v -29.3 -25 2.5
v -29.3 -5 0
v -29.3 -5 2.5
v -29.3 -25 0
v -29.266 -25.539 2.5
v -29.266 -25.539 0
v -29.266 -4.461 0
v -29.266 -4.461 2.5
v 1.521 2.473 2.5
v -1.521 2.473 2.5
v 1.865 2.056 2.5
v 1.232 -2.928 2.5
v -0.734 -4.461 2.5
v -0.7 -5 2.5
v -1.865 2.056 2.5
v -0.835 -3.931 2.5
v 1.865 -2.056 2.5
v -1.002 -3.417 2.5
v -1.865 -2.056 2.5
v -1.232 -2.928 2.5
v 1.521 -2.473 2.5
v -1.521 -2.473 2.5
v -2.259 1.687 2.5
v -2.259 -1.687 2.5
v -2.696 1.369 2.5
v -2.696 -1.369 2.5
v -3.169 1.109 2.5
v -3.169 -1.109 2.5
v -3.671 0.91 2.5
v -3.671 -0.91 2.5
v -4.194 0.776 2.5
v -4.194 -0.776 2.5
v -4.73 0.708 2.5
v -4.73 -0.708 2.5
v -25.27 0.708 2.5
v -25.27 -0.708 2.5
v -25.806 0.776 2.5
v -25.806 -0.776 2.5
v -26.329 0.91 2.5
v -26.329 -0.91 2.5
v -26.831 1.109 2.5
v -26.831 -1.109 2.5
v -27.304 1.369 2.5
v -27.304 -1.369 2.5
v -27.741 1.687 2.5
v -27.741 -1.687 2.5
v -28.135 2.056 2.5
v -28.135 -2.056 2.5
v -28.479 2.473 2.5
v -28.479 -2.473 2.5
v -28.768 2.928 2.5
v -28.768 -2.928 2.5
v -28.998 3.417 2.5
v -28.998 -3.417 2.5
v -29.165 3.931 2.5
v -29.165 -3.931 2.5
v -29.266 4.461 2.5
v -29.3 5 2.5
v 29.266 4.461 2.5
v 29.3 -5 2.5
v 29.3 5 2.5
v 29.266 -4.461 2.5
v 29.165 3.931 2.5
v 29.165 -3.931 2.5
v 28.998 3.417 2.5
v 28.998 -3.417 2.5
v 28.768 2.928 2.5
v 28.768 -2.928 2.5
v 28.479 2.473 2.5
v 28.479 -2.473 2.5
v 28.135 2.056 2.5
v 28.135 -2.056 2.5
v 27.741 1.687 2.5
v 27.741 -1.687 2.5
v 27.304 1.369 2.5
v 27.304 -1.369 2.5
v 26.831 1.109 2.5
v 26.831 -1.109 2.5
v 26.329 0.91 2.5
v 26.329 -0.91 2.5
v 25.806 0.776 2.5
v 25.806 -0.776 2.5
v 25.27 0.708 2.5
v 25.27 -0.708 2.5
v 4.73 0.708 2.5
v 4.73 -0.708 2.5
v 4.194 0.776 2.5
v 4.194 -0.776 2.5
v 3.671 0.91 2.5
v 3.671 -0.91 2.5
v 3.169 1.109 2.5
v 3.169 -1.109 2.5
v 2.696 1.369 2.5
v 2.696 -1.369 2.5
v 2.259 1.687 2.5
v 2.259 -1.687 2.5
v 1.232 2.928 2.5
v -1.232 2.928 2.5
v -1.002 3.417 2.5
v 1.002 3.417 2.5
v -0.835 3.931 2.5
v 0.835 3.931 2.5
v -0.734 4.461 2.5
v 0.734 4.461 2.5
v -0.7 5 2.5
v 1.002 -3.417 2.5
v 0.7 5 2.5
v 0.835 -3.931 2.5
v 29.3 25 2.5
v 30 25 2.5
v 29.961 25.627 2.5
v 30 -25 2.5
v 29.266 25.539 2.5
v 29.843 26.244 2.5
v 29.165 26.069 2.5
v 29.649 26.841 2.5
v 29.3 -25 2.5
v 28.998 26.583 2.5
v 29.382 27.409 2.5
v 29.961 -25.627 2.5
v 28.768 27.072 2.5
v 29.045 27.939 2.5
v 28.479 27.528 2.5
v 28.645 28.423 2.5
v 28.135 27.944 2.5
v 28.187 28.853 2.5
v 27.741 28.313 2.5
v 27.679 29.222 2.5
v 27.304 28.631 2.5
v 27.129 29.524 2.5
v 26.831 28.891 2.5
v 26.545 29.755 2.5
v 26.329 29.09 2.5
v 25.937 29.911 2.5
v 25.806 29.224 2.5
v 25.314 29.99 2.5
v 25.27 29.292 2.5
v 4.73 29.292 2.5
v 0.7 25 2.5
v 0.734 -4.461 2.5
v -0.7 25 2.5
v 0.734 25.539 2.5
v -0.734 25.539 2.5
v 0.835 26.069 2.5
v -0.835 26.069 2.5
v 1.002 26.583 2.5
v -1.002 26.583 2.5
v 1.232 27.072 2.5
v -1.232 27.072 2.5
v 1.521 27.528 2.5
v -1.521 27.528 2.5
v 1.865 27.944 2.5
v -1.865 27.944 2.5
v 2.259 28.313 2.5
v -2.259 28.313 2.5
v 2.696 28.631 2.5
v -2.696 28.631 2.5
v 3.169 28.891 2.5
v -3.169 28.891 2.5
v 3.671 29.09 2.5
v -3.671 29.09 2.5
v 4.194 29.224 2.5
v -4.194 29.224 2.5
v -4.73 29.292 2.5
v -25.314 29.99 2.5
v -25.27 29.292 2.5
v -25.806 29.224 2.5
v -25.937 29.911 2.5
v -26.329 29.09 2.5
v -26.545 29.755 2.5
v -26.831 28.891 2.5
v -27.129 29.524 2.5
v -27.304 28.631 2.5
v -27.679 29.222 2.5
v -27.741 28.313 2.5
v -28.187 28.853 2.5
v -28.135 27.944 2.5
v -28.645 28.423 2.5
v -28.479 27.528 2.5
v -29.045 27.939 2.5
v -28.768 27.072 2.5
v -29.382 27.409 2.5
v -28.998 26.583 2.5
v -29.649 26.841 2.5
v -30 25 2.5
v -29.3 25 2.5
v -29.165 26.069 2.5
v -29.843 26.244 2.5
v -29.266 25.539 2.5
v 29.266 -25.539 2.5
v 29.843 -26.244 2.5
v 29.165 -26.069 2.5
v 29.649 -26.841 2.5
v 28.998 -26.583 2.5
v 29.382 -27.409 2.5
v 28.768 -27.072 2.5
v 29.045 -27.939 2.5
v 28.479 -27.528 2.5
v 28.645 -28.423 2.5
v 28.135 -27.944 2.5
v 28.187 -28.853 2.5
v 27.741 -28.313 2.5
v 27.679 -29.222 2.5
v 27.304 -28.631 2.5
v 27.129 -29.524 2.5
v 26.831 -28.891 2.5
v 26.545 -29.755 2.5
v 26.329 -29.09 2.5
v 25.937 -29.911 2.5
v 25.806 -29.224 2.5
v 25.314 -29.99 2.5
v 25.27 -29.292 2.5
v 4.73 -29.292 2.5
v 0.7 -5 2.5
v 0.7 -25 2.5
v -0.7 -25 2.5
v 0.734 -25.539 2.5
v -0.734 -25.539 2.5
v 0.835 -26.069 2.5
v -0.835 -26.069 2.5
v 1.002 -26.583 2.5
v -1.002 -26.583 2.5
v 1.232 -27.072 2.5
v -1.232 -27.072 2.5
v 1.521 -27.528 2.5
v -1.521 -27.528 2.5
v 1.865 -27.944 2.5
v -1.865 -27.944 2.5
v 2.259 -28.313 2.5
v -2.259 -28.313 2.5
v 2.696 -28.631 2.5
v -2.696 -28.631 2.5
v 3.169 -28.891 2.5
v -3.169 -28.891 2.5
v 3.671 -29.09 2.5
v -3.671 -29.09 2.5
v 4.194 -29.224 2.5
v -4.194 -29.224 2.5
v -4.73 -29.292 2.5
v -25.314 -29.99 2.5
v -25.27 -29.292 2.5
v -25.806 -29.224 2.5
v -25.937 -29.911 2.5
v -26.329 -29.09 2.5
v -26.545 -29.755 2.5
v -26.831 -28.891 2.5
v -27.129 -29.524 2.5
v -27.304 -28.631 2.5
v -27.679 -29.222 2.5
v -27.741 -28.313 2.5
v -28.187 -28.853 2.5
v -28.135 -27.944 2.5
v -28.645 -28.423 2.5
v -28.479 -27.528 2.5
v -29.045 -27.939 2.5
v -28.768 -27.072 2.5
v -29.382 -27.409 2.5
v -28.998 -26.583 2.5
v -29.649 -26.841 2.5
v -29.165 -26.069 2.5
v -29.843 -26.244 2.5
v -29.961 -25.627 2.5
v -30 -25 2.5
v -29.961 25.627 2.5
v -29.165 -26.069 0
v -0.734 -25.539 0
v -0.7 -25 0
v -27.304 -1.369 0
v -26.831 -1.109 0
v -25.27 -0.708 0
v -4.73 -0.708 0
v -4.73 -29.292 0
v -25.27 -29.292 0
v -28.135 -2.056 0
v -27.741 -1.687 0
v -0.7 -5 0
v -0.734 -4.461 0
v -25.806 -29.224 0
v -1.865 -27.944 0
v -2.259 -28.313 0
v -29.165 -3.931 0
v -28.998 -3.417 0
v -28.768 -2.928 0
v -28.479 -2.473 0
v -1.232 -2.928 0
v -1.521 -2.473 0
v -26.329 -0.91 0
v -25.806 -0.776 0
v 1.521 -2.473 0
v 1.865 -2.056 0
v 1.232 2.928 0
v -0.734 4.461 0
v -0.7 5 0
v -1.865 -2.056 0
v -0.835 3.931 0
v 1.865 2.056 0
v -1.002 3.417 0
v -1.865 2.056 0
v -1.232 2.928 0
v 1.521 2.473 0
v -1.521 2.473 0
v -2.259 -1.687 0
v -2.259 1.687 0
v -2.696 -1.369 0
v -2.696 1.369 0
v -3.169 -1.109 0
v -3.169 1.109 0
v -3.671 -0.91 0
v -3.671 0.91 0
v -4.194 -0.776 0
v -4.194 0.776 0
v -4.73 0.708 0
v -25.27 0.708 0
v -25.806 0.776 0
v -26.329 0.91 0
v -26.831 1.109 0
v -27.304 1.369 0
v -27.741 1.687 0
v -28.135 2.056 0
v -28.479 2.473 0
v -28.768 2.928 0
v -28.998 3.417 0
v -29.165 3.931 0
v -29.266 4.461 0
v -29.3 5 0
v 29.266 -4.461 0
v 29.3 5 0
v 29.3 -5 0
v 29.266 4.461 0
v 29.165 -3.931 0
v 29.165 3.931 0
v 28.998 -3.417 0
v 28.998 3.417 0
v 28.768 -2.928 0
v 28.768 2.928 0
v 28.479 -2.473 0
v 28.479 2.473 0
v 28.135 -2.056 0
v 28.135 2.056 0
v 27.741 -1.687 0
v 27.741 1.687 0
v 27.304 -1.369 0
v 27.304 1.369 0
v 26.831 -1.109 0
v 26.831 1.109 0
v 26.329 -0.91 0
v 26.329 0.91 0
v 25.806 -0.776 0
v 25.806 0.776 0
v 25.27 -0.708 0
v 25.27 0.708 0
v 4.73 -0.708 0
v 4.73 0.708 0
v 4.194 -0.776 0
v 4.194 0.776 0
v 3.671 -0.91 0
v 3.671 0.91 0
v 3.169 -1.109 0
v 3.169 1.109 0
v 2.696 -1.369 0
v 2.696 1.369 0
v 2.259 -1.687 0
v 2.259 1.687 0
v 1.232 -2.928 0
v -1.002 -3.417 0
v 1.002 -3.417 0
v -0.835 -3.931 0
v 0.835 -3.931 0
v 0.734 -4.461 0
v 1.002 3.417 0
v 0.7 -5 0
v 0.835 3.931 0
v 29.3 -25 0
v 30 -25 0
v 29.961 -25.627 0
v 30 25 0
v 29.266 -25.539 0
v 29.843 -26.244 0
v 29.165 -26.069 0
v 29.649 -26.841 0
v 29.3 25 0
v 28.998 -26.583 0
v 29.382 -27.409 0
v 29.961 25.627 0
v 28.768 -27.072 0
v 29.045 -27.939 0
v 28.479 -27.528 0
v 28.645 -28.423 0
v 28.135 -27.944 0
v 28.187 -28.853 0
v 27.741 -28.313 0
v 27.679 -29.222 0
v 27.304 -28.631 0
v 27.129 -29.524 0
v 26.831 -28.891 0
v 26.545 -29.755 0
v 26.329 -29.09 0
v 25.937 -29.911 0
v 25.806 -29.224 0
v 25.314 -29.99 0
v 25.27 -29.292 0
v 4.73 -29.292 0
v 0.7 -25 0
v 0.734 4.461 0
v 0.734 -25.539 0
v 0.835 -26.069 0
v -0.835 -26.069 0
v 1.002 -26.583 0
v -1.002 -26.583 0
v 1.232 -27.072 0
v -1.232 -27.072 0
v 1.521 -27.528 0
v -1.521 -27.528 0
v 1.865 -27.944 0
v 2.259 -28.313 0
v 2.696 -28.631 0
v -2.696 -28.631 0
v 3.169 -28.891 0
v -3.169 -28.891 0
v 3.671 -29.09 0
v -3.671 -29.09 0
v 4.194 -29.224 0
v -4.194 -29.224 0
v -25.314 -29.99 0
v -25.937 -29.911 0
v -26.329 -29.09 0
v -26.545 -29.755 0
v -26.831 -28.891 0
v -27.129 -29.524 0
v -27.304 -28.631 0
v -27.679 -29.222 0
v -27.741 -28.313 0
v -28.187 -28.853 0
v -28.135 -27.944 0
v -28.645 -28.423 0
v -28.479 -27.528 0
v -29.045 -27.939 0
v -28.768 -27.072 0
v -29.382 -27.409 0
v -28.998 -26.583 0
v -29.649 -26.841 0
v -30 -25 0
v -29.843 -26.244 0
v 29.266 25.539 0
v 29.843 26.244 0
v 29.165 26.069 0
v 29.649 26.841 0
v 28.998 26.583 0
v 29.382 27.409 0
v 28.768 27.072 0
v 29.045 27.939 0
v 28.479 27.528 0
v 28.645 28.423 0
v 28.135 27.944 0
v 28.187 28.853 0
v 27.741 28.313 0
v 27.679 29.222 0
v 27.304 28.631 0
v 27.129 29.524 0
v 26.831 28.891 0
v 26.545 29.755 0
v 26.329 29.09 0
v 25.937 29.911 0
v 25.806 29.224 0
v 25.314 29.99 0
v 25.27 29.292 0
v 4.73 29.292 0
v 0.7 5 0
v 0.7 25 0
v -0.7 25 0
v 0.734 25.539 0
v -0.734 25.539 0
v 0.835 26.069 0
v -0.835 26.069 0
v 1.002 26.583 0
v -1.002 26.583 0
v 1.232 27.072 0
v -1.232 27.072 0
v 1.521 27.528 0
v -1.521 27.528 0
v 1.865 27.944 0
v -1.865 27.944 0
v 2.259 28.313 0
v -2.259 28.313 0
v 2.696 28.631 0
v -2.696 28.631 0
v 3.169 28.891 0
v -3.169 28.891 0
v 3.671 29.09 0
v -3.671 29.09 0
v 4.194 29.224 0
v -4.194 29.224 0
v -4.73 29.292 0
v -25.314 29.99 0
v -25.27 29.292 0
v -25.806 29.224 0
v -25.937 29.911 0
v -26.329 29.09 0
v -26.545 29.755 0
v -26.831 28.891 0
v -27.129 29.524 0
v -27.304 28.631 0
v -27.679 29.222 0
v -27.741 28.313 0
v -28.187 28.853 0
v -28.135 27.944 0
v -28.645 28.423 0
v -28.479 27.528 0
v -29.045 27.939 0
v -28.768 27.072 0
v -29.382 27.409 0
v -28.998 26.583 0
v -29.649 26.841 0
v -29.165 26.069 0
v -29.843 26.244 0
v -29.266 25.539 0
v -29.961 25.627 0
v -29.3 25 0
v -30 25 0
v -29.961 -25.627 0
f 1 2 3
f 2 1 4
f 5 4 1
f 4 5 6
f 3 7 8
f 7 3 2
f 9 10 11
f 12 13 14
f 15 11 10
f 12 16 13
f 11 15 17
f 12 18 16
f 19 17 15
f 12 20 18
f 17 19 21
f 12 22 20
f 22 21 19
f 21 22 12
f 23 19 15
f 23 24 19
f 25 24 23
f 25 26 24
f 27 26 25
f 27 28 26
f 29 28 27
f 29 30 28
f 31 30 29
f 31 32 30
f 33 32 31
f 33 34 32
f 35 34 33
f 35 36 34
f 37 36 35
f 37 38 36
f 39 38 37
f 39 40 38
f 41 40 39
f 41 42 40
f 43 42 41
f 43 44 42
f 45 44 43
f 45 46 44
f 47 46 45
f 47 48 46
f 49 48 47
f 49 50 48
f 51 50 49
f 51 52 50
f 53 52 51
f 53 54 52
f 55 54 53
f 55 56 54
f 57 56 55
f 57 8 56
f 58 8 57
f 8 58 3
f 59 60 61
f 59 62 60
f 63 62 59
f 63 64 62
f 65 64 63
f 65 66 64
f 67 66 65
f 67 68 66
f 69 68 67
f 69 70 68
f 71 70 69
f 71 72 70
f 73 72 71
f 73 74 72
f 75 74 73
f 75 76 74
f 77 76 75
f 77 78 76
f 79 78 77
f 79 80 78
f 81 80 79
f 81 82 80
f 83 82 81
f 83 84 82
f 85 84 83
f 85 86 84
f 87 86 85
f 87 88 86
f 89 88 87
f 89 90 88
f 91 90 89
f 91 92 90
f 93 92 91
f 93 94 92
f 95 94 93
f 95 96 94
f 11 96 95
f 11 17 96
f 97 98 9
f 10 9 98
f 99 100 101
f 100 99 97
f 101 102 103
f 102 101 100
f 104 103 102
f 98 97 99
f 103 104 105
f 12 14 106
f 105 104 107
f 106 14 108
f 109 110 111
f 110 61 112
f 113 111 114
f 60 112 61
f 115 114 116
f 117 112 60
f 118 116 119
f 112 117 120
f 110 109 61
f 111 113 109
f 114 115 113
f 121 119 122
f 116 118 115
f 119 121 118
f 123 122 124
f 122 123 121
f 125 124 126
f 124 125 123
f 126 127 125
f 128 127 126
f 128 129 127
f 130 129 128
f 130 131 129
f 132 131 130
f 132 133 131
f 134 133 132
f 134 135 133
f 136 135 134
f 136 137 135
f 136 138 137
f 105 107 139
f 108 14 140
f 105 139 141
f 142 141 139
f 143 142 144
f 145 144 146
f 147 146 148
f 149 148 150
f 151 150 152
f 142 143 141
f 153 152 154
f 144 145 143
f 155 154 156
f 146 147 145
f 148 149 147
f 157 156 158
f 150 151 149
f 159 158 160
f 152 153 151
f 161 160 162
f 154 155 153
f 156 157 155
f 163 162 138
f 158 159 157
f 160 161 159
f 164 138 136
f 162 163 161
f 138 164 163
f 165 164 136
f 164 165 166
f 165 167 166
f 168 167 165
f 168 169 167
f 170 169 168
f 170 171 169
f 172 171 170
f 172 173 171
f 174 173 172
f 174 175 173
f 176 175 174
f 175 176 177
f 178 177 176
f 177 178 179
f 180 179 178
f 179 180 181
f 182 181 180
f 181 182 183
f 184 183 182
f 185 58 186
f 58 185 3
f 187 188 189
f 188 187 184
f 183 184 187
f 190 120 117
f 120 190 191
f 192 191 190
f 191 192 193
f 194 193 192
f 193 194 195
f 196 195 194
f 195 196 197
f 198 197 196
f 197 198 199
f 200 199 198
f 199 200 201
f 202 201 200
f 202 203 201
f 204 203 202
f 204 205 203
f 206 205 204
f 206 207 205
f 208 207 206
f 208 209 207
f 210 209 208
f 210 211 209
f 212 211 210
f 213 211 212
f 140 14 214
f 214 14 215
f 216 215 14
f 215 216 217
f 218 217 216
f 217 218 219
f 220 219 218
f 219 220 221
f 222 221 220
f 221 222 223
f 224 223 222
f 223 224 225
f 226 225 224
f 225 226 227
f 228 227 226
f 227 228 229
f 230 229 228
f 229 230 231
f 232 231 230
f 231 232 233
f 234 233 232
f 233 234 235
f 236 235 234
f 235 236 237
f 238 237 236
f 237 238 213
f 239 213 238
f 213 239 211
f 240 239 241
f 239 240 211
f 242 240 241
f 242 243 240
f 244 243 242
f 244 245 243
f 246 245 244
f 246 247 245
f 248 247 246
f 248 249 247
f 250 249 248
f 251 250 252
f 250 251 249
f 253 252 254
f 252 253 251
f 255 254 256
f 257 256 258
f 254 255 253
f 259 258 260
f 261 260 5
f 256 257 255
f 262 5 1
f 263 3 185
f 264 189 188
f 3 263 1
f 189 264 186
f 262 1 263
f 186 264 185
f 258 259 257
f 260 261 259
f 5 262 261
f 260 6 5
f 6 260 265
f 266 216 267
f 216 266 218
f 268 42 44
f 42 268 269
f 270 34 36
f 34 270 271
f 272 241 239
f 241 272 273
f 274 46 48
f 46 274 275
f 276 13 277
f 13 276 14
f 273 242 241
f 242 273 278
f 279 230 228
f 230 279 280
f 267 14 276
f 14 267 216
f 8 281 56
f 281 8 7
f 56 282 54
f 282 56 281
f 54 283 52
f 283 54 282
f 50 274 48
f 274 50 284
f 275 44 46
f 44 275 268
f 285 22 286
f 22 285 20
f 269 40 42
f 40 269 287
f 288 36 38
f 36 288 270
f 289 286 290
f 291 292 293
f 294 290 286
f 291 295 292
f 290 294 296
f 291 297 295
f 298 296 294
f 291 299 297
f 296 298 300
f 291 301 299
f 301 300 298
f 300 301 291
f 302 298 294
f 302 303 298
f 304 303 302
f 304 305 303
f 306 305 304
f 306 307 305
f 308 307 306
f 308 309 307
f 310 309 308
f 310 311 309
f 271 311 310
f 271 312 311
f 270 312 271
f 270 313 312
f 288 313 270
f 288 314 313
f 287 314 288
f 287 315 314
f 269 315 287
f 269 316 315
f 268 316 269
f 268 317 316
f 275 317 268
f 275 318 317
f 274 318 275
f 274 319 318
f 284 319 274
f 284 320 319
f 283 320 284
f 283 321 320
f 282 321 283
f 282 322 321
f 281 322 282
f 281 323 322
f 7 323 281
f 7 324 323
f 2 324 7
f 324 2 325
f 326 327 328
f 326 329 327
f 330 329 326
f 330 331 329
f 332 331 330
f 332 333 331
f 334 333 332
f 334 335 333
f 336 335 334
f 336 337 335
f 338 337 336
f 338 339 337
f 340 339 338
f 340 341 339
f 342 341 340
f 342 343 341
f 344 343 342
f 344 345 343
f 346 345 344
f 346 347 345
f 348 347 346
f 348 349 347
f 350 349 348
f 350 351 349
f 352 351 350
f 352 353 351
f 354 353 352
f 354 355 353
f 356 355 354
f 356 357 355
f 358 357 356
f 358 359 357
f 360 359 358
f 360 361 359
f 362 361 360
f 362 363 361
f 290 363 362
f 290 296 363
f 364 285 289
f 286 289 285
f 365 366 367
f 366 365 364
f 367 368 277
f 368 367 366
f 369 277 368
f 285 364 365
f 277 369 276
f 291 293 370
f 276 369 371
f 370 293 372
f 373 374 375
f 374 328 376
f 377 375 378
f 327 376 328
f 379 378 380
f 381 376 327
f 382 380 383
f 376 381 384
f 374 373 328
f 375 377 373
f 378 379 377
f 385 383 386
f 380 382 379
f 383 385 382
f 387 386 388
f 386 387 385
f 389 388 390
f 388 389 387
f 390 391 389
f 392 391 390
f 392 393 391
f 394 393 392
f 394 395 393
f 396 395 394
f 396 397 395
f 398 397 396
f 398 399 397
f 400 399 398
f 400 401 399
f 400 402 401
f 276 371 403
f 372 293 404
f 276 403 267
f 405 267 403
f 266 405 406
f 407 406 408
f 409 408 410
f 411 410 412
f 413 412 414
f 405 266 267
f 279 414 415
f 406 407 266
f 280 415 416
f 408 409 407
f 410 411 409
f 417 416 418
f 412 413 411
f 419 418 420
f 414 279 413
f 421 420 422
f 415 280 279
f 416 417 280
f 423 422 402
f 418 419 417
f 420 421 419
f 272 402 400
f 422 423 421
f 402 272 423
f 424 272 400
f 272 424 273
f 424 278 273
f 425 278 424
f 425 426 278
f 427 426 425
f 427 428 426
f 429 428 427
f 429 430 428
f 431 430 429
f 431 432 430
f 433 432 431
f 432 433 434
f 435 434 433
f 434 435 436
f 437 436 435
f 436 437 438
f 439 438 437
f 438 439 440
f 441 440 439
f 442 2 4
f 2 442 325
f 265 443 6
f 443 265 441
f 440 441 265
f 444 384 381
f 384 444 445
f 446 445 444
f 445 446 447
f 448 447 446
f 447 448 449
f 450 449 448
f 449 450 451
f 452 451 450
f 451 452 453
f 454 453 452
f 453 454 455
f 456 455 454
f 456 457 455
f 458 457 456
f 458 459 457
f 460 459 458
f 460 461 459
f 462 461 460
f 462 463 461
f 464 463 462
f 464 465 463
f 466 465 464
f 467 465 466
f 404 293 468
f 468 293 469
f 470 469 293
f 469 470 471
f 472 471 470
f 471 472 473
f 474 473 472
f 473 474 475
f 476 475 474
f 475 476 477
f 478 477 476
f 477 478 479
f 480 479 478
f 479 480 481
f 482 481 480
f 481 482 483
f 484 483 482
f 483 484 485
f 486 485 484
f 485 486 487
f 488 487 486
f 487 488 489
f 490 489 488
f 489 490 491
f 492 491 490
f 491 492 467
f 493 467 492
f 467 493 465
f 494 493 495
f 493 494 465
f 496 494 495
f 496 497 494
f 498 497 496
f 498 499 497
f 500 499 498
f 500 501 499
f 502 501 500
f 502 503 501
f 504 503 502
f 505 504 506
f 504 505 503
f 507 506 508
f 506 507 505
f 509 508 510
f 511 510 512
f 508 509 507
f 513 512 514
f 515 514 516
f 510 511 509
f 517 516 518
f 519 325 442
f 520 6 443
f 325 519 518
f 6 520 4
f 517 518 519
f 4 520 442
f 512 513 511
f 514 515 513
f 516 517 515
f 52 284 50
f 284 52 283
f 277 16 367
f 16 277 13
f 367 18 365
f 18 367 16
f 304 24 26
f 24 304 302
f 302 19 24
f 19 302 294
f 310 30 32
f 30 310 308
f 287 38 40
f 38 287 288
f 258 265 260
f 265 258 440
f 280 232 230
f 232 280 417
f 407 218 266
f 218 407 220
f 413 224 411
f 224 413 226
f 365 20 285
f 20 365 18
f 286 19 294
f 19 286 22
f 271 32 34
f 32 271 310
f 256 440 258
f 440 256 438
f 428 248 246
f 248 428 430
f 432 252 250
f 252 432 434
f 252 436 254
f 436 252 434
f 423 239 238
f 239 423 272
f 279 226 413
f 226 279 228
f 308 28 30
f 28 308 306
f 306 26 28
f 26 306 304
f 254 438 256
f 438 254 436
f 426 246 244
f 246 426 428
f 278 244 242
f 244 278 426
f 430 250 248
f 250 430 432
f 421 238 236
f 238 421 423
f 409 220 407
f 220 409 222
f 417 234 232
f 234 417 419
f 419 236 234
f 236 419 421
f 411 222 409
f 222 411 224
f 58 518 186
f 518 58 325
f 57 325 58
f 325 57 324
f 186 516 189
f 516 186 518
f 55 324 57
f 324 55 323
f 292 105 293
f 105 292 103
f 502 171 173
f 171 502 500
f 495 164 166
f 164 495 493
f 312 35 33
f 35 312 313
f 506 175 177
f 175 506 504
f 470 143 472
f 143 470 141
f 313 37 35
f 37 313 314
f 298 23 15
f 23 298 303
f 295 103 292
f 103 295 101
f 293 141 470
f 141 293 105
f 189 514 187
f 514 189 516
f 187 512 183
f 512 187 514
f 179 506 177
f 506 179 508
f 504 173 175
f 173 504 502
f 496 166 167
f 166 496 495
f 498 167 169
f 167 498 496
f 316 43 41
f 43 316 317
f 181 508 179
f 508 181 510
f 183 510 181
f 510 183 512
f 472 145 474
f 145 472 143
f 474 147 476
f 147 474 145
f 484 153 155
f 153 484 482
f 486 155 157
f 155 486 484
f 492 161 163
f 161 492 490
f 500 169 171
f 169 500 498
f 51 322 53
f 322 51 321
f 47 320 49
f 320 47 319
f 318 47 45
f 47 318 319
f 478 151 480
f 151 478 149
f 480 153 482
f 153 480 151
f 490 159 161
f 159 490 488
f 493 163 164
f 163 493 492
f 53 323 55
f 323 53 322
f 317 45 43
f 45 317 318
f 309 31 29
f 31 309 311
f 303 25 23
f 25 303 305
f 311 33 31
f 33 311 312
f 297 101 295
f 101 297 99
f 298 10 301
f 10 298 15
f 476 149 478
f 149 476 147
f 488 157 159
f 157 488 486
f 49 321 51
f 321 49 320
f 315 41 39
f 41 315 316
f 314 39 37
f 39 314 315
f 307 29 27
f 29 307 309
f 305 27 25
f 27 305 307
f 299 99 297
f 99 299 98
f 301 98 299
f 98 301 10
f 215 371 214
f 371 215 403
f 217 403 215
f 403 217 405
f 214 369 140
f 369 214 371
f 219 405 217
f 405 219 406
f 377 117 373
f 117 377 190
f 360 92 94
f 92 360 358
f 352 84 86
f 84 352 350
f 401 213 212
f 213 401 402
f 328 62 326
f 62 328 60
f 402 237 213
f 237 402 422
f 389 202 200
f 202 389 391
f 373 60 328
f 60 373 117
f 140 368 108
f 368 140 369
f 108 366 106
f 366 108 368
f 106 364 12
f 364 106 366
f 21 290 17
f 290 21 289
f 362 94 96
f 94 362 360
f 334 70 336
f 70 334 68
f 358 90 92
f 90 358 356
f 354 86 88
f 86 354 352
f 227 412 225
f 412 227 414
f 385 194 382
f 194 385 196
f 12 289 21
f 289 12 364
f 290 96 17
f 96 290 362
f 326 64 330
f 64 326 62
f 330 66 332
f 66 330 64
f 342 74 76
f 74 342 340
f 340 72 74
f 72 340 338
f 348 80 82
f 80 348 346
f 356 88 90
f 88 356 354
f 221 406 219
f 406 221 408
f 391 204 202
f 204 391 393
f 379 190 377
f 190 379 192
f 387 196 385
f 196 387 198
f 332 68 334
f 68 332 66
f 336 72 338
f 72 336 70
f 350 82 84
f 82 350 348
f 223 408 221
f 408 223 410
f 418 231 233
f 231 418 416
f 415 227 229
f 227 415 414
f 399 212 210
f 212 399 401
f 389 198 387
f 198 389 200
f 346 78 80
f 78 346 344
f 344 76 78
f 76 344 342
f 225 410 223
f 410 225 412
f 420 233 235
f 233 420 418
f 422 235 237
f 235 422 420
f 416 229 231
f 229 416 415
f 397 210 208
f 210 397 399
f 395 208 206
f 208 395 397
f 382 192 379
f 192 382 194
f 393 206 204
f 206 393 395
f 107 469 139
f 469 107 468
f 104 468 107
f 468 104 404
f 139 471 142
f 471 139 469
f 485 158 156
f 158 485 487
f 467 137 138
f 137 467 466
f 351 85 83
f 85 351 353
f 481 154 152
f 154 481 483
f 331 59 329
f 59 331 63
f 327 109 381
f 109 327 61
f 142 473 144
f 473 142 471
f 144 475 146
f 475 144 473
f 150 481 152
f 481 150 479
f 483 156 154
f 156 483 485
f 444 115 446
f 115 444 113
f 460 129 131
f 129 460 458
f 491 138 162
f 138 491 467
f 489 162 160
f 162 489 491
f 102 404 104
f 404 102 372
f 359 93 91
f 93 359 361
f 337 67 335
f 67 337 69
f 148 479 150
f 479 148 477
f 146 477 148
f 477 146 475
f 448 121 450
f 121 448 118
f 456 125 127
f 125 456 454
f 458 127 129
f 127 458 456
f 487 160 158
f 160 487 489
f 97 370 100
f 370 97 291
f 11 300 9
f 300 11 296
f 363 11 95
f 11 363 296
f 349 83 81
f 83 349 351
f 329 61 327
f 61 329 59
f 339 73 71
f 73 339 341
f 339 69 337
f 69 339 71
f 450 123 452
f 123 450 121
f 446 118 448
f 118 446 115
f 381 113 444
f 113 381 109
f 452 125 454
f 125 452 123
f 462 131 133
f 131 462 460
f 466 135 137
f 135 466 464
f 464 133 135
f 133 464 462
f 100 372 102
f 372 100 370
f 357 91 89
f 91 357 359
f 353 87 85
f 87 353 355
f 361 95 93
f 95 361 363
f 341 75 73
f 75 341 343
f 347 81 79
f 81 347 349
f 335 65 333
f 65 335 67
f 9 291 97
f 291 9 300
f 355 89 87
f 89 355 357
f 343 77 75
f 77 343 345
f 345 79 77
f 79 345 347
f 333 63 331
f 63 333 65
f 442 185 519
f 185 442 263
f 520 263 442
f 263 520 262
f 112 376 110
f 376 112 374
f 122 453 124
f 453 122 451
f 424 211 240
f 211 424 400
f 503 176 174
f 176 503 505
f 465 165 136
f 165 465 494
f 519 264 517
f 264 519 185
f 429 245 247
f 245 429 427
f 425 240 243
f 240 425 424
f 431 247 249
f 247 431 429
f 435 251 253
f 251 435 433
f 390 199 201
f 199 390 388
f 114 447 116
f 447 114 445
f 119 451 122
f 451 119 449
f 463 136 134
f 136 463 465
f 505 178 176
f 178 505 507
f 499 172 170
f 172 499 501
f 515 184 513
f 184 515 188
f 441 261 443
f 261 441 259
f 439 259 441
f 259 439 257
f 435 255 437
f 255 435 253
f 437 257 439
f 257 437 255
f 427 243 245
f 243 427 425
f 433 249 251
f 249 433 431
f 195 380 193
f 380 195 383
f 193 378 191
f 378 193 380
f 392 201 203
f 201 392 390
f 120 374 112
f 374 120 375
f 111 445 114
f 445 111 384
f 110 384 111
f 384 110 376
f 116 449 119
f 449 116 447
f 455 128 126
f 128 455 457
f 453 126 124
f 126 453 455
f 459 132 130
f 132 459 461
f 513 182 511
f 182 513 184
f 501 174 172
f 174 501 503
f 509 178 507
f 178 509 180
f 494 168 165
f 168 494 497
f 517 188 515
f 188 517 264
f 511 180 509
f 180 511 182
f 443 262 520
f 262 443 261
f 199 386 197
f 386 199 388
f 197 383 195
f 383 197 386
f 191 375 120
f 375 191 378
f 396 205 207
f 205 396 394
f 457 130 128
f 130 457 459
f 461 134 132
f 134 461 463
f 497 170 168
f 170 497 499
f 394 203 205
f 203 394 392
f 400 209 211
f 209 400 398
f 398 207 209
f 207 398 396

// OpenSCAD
$fn = 50;


difference() {
	union() {
		hull() {
			translate(v = [-25.0000000000, 25.0000000000, 0]) {
				cylinder(h = 2.5000000000, r = 5);
			}
			translate(v = [25.0000000000, 25.0000000000, 0]) {
				cylinder(h = 2.5000000000, r = 5);
			}
			translate(v = [-25.0000000000, -25.0000000000, 0]) {
				cylinder(h = 2.5000000000, r = 5);
			}
			translate(v = [25.0000000000, -25.0000000000, 0]) {
				cylinder(h = 2.5000000000, r = 5);
			}
		}
	}
	union() {
		translate(v = [-15.0000000000, -15.0000000000, 0]) {
			hull() {
				translate(v = [-10.0000000000, 10.0000000000, 0]) {
					cylinder(h = 2.5000000000, r = 4.3000000000);
				}
				translate(v = [10.0000000000, 10.0000000000, 0]) {
					cylinder(h = 2.5000000000, r = 4.3000000000);
				}
				translate(v = [-10.0000000000, -10.0000000000, 0]) {
					cylinder(h = 2.5000000000, r = 4.3000000000);
				}
				translate(v = [10.0000000000, -10.0000000000, 0]) {
					cylinder(h = 2.5000000000, r = 4.3000000000);
				}
			}
		}
		translate(v = [-15.0000000000, 15.0000000000, 0]) {
			hull() {
				translate(v = [-10.0000000000, 10.0000000000, 0]) {
					cylinder(h = 2.5000000000, r = 4.3000000000);
				}
				translate(v = [10.0000000000, 10.0000000000, 0]) {
					cylinder(h = 2.5000000000, r = 4.3000000000);
				}
				translate(v = [-10.0000000000, -10.0000000000, 0]) {
					cylinder(h = 2.5000000000, r = 4.3000000000);
				}
				translate(v = [10.0000000000, -10.0000000000, 0]) {
					cylinder(h = 2.5000000000, r = 4.3000000000);
				}
			}
		}
		translate(v = [15.0000000000, -15.0000000000, 0]) {
			hull() {
				translate(v = [-10.0000000000, 10.0000000000, 0]) {
					cylinder(h = 2.5000000000, r = 4.3000000000);
				}
				translate(v = [10.0000000000, 10.0000000000, 0]) {
					cylinder(h = 2.5000000000, r = 4.3000000000);
				}
				translate(v = [-10.0000000000, -10.0000000000, 0]) {
					cylinder(h = 2.5000000000, r = 4.3000000000);
				}
				translate(v = [10.0000000000, -10.0000000000, 0]) {
					cylinder(h = 2.5000000000, r = 4.3000000000);
				}
			}
		}
		translate(v = [15.0000000000, 15.0000000000, 0]) {
			hull() {
				translate(v = [-10.0000000000, 10.0000000000, 0]) {
					cylinder(h = 2.5000000000, r = 4.3000000000);
				}
				translate(v = [10.0000000000, 10.0000000000, 0]) {
					cylinder(h = 2.5000000000, r = 4.3000000000);
				}
				translate(v = [-10.0000000000, -10.0000000000, 0]) {
					cylinder(h = 2.5000000000, r = 4.3000000000);
				}
				translate(v = [10.0000000000, -10.0000000000, 0]) {
					cylinder(h = 2.5000000000, r = 4.3000000000);
				}
			}
		}
	}
}
